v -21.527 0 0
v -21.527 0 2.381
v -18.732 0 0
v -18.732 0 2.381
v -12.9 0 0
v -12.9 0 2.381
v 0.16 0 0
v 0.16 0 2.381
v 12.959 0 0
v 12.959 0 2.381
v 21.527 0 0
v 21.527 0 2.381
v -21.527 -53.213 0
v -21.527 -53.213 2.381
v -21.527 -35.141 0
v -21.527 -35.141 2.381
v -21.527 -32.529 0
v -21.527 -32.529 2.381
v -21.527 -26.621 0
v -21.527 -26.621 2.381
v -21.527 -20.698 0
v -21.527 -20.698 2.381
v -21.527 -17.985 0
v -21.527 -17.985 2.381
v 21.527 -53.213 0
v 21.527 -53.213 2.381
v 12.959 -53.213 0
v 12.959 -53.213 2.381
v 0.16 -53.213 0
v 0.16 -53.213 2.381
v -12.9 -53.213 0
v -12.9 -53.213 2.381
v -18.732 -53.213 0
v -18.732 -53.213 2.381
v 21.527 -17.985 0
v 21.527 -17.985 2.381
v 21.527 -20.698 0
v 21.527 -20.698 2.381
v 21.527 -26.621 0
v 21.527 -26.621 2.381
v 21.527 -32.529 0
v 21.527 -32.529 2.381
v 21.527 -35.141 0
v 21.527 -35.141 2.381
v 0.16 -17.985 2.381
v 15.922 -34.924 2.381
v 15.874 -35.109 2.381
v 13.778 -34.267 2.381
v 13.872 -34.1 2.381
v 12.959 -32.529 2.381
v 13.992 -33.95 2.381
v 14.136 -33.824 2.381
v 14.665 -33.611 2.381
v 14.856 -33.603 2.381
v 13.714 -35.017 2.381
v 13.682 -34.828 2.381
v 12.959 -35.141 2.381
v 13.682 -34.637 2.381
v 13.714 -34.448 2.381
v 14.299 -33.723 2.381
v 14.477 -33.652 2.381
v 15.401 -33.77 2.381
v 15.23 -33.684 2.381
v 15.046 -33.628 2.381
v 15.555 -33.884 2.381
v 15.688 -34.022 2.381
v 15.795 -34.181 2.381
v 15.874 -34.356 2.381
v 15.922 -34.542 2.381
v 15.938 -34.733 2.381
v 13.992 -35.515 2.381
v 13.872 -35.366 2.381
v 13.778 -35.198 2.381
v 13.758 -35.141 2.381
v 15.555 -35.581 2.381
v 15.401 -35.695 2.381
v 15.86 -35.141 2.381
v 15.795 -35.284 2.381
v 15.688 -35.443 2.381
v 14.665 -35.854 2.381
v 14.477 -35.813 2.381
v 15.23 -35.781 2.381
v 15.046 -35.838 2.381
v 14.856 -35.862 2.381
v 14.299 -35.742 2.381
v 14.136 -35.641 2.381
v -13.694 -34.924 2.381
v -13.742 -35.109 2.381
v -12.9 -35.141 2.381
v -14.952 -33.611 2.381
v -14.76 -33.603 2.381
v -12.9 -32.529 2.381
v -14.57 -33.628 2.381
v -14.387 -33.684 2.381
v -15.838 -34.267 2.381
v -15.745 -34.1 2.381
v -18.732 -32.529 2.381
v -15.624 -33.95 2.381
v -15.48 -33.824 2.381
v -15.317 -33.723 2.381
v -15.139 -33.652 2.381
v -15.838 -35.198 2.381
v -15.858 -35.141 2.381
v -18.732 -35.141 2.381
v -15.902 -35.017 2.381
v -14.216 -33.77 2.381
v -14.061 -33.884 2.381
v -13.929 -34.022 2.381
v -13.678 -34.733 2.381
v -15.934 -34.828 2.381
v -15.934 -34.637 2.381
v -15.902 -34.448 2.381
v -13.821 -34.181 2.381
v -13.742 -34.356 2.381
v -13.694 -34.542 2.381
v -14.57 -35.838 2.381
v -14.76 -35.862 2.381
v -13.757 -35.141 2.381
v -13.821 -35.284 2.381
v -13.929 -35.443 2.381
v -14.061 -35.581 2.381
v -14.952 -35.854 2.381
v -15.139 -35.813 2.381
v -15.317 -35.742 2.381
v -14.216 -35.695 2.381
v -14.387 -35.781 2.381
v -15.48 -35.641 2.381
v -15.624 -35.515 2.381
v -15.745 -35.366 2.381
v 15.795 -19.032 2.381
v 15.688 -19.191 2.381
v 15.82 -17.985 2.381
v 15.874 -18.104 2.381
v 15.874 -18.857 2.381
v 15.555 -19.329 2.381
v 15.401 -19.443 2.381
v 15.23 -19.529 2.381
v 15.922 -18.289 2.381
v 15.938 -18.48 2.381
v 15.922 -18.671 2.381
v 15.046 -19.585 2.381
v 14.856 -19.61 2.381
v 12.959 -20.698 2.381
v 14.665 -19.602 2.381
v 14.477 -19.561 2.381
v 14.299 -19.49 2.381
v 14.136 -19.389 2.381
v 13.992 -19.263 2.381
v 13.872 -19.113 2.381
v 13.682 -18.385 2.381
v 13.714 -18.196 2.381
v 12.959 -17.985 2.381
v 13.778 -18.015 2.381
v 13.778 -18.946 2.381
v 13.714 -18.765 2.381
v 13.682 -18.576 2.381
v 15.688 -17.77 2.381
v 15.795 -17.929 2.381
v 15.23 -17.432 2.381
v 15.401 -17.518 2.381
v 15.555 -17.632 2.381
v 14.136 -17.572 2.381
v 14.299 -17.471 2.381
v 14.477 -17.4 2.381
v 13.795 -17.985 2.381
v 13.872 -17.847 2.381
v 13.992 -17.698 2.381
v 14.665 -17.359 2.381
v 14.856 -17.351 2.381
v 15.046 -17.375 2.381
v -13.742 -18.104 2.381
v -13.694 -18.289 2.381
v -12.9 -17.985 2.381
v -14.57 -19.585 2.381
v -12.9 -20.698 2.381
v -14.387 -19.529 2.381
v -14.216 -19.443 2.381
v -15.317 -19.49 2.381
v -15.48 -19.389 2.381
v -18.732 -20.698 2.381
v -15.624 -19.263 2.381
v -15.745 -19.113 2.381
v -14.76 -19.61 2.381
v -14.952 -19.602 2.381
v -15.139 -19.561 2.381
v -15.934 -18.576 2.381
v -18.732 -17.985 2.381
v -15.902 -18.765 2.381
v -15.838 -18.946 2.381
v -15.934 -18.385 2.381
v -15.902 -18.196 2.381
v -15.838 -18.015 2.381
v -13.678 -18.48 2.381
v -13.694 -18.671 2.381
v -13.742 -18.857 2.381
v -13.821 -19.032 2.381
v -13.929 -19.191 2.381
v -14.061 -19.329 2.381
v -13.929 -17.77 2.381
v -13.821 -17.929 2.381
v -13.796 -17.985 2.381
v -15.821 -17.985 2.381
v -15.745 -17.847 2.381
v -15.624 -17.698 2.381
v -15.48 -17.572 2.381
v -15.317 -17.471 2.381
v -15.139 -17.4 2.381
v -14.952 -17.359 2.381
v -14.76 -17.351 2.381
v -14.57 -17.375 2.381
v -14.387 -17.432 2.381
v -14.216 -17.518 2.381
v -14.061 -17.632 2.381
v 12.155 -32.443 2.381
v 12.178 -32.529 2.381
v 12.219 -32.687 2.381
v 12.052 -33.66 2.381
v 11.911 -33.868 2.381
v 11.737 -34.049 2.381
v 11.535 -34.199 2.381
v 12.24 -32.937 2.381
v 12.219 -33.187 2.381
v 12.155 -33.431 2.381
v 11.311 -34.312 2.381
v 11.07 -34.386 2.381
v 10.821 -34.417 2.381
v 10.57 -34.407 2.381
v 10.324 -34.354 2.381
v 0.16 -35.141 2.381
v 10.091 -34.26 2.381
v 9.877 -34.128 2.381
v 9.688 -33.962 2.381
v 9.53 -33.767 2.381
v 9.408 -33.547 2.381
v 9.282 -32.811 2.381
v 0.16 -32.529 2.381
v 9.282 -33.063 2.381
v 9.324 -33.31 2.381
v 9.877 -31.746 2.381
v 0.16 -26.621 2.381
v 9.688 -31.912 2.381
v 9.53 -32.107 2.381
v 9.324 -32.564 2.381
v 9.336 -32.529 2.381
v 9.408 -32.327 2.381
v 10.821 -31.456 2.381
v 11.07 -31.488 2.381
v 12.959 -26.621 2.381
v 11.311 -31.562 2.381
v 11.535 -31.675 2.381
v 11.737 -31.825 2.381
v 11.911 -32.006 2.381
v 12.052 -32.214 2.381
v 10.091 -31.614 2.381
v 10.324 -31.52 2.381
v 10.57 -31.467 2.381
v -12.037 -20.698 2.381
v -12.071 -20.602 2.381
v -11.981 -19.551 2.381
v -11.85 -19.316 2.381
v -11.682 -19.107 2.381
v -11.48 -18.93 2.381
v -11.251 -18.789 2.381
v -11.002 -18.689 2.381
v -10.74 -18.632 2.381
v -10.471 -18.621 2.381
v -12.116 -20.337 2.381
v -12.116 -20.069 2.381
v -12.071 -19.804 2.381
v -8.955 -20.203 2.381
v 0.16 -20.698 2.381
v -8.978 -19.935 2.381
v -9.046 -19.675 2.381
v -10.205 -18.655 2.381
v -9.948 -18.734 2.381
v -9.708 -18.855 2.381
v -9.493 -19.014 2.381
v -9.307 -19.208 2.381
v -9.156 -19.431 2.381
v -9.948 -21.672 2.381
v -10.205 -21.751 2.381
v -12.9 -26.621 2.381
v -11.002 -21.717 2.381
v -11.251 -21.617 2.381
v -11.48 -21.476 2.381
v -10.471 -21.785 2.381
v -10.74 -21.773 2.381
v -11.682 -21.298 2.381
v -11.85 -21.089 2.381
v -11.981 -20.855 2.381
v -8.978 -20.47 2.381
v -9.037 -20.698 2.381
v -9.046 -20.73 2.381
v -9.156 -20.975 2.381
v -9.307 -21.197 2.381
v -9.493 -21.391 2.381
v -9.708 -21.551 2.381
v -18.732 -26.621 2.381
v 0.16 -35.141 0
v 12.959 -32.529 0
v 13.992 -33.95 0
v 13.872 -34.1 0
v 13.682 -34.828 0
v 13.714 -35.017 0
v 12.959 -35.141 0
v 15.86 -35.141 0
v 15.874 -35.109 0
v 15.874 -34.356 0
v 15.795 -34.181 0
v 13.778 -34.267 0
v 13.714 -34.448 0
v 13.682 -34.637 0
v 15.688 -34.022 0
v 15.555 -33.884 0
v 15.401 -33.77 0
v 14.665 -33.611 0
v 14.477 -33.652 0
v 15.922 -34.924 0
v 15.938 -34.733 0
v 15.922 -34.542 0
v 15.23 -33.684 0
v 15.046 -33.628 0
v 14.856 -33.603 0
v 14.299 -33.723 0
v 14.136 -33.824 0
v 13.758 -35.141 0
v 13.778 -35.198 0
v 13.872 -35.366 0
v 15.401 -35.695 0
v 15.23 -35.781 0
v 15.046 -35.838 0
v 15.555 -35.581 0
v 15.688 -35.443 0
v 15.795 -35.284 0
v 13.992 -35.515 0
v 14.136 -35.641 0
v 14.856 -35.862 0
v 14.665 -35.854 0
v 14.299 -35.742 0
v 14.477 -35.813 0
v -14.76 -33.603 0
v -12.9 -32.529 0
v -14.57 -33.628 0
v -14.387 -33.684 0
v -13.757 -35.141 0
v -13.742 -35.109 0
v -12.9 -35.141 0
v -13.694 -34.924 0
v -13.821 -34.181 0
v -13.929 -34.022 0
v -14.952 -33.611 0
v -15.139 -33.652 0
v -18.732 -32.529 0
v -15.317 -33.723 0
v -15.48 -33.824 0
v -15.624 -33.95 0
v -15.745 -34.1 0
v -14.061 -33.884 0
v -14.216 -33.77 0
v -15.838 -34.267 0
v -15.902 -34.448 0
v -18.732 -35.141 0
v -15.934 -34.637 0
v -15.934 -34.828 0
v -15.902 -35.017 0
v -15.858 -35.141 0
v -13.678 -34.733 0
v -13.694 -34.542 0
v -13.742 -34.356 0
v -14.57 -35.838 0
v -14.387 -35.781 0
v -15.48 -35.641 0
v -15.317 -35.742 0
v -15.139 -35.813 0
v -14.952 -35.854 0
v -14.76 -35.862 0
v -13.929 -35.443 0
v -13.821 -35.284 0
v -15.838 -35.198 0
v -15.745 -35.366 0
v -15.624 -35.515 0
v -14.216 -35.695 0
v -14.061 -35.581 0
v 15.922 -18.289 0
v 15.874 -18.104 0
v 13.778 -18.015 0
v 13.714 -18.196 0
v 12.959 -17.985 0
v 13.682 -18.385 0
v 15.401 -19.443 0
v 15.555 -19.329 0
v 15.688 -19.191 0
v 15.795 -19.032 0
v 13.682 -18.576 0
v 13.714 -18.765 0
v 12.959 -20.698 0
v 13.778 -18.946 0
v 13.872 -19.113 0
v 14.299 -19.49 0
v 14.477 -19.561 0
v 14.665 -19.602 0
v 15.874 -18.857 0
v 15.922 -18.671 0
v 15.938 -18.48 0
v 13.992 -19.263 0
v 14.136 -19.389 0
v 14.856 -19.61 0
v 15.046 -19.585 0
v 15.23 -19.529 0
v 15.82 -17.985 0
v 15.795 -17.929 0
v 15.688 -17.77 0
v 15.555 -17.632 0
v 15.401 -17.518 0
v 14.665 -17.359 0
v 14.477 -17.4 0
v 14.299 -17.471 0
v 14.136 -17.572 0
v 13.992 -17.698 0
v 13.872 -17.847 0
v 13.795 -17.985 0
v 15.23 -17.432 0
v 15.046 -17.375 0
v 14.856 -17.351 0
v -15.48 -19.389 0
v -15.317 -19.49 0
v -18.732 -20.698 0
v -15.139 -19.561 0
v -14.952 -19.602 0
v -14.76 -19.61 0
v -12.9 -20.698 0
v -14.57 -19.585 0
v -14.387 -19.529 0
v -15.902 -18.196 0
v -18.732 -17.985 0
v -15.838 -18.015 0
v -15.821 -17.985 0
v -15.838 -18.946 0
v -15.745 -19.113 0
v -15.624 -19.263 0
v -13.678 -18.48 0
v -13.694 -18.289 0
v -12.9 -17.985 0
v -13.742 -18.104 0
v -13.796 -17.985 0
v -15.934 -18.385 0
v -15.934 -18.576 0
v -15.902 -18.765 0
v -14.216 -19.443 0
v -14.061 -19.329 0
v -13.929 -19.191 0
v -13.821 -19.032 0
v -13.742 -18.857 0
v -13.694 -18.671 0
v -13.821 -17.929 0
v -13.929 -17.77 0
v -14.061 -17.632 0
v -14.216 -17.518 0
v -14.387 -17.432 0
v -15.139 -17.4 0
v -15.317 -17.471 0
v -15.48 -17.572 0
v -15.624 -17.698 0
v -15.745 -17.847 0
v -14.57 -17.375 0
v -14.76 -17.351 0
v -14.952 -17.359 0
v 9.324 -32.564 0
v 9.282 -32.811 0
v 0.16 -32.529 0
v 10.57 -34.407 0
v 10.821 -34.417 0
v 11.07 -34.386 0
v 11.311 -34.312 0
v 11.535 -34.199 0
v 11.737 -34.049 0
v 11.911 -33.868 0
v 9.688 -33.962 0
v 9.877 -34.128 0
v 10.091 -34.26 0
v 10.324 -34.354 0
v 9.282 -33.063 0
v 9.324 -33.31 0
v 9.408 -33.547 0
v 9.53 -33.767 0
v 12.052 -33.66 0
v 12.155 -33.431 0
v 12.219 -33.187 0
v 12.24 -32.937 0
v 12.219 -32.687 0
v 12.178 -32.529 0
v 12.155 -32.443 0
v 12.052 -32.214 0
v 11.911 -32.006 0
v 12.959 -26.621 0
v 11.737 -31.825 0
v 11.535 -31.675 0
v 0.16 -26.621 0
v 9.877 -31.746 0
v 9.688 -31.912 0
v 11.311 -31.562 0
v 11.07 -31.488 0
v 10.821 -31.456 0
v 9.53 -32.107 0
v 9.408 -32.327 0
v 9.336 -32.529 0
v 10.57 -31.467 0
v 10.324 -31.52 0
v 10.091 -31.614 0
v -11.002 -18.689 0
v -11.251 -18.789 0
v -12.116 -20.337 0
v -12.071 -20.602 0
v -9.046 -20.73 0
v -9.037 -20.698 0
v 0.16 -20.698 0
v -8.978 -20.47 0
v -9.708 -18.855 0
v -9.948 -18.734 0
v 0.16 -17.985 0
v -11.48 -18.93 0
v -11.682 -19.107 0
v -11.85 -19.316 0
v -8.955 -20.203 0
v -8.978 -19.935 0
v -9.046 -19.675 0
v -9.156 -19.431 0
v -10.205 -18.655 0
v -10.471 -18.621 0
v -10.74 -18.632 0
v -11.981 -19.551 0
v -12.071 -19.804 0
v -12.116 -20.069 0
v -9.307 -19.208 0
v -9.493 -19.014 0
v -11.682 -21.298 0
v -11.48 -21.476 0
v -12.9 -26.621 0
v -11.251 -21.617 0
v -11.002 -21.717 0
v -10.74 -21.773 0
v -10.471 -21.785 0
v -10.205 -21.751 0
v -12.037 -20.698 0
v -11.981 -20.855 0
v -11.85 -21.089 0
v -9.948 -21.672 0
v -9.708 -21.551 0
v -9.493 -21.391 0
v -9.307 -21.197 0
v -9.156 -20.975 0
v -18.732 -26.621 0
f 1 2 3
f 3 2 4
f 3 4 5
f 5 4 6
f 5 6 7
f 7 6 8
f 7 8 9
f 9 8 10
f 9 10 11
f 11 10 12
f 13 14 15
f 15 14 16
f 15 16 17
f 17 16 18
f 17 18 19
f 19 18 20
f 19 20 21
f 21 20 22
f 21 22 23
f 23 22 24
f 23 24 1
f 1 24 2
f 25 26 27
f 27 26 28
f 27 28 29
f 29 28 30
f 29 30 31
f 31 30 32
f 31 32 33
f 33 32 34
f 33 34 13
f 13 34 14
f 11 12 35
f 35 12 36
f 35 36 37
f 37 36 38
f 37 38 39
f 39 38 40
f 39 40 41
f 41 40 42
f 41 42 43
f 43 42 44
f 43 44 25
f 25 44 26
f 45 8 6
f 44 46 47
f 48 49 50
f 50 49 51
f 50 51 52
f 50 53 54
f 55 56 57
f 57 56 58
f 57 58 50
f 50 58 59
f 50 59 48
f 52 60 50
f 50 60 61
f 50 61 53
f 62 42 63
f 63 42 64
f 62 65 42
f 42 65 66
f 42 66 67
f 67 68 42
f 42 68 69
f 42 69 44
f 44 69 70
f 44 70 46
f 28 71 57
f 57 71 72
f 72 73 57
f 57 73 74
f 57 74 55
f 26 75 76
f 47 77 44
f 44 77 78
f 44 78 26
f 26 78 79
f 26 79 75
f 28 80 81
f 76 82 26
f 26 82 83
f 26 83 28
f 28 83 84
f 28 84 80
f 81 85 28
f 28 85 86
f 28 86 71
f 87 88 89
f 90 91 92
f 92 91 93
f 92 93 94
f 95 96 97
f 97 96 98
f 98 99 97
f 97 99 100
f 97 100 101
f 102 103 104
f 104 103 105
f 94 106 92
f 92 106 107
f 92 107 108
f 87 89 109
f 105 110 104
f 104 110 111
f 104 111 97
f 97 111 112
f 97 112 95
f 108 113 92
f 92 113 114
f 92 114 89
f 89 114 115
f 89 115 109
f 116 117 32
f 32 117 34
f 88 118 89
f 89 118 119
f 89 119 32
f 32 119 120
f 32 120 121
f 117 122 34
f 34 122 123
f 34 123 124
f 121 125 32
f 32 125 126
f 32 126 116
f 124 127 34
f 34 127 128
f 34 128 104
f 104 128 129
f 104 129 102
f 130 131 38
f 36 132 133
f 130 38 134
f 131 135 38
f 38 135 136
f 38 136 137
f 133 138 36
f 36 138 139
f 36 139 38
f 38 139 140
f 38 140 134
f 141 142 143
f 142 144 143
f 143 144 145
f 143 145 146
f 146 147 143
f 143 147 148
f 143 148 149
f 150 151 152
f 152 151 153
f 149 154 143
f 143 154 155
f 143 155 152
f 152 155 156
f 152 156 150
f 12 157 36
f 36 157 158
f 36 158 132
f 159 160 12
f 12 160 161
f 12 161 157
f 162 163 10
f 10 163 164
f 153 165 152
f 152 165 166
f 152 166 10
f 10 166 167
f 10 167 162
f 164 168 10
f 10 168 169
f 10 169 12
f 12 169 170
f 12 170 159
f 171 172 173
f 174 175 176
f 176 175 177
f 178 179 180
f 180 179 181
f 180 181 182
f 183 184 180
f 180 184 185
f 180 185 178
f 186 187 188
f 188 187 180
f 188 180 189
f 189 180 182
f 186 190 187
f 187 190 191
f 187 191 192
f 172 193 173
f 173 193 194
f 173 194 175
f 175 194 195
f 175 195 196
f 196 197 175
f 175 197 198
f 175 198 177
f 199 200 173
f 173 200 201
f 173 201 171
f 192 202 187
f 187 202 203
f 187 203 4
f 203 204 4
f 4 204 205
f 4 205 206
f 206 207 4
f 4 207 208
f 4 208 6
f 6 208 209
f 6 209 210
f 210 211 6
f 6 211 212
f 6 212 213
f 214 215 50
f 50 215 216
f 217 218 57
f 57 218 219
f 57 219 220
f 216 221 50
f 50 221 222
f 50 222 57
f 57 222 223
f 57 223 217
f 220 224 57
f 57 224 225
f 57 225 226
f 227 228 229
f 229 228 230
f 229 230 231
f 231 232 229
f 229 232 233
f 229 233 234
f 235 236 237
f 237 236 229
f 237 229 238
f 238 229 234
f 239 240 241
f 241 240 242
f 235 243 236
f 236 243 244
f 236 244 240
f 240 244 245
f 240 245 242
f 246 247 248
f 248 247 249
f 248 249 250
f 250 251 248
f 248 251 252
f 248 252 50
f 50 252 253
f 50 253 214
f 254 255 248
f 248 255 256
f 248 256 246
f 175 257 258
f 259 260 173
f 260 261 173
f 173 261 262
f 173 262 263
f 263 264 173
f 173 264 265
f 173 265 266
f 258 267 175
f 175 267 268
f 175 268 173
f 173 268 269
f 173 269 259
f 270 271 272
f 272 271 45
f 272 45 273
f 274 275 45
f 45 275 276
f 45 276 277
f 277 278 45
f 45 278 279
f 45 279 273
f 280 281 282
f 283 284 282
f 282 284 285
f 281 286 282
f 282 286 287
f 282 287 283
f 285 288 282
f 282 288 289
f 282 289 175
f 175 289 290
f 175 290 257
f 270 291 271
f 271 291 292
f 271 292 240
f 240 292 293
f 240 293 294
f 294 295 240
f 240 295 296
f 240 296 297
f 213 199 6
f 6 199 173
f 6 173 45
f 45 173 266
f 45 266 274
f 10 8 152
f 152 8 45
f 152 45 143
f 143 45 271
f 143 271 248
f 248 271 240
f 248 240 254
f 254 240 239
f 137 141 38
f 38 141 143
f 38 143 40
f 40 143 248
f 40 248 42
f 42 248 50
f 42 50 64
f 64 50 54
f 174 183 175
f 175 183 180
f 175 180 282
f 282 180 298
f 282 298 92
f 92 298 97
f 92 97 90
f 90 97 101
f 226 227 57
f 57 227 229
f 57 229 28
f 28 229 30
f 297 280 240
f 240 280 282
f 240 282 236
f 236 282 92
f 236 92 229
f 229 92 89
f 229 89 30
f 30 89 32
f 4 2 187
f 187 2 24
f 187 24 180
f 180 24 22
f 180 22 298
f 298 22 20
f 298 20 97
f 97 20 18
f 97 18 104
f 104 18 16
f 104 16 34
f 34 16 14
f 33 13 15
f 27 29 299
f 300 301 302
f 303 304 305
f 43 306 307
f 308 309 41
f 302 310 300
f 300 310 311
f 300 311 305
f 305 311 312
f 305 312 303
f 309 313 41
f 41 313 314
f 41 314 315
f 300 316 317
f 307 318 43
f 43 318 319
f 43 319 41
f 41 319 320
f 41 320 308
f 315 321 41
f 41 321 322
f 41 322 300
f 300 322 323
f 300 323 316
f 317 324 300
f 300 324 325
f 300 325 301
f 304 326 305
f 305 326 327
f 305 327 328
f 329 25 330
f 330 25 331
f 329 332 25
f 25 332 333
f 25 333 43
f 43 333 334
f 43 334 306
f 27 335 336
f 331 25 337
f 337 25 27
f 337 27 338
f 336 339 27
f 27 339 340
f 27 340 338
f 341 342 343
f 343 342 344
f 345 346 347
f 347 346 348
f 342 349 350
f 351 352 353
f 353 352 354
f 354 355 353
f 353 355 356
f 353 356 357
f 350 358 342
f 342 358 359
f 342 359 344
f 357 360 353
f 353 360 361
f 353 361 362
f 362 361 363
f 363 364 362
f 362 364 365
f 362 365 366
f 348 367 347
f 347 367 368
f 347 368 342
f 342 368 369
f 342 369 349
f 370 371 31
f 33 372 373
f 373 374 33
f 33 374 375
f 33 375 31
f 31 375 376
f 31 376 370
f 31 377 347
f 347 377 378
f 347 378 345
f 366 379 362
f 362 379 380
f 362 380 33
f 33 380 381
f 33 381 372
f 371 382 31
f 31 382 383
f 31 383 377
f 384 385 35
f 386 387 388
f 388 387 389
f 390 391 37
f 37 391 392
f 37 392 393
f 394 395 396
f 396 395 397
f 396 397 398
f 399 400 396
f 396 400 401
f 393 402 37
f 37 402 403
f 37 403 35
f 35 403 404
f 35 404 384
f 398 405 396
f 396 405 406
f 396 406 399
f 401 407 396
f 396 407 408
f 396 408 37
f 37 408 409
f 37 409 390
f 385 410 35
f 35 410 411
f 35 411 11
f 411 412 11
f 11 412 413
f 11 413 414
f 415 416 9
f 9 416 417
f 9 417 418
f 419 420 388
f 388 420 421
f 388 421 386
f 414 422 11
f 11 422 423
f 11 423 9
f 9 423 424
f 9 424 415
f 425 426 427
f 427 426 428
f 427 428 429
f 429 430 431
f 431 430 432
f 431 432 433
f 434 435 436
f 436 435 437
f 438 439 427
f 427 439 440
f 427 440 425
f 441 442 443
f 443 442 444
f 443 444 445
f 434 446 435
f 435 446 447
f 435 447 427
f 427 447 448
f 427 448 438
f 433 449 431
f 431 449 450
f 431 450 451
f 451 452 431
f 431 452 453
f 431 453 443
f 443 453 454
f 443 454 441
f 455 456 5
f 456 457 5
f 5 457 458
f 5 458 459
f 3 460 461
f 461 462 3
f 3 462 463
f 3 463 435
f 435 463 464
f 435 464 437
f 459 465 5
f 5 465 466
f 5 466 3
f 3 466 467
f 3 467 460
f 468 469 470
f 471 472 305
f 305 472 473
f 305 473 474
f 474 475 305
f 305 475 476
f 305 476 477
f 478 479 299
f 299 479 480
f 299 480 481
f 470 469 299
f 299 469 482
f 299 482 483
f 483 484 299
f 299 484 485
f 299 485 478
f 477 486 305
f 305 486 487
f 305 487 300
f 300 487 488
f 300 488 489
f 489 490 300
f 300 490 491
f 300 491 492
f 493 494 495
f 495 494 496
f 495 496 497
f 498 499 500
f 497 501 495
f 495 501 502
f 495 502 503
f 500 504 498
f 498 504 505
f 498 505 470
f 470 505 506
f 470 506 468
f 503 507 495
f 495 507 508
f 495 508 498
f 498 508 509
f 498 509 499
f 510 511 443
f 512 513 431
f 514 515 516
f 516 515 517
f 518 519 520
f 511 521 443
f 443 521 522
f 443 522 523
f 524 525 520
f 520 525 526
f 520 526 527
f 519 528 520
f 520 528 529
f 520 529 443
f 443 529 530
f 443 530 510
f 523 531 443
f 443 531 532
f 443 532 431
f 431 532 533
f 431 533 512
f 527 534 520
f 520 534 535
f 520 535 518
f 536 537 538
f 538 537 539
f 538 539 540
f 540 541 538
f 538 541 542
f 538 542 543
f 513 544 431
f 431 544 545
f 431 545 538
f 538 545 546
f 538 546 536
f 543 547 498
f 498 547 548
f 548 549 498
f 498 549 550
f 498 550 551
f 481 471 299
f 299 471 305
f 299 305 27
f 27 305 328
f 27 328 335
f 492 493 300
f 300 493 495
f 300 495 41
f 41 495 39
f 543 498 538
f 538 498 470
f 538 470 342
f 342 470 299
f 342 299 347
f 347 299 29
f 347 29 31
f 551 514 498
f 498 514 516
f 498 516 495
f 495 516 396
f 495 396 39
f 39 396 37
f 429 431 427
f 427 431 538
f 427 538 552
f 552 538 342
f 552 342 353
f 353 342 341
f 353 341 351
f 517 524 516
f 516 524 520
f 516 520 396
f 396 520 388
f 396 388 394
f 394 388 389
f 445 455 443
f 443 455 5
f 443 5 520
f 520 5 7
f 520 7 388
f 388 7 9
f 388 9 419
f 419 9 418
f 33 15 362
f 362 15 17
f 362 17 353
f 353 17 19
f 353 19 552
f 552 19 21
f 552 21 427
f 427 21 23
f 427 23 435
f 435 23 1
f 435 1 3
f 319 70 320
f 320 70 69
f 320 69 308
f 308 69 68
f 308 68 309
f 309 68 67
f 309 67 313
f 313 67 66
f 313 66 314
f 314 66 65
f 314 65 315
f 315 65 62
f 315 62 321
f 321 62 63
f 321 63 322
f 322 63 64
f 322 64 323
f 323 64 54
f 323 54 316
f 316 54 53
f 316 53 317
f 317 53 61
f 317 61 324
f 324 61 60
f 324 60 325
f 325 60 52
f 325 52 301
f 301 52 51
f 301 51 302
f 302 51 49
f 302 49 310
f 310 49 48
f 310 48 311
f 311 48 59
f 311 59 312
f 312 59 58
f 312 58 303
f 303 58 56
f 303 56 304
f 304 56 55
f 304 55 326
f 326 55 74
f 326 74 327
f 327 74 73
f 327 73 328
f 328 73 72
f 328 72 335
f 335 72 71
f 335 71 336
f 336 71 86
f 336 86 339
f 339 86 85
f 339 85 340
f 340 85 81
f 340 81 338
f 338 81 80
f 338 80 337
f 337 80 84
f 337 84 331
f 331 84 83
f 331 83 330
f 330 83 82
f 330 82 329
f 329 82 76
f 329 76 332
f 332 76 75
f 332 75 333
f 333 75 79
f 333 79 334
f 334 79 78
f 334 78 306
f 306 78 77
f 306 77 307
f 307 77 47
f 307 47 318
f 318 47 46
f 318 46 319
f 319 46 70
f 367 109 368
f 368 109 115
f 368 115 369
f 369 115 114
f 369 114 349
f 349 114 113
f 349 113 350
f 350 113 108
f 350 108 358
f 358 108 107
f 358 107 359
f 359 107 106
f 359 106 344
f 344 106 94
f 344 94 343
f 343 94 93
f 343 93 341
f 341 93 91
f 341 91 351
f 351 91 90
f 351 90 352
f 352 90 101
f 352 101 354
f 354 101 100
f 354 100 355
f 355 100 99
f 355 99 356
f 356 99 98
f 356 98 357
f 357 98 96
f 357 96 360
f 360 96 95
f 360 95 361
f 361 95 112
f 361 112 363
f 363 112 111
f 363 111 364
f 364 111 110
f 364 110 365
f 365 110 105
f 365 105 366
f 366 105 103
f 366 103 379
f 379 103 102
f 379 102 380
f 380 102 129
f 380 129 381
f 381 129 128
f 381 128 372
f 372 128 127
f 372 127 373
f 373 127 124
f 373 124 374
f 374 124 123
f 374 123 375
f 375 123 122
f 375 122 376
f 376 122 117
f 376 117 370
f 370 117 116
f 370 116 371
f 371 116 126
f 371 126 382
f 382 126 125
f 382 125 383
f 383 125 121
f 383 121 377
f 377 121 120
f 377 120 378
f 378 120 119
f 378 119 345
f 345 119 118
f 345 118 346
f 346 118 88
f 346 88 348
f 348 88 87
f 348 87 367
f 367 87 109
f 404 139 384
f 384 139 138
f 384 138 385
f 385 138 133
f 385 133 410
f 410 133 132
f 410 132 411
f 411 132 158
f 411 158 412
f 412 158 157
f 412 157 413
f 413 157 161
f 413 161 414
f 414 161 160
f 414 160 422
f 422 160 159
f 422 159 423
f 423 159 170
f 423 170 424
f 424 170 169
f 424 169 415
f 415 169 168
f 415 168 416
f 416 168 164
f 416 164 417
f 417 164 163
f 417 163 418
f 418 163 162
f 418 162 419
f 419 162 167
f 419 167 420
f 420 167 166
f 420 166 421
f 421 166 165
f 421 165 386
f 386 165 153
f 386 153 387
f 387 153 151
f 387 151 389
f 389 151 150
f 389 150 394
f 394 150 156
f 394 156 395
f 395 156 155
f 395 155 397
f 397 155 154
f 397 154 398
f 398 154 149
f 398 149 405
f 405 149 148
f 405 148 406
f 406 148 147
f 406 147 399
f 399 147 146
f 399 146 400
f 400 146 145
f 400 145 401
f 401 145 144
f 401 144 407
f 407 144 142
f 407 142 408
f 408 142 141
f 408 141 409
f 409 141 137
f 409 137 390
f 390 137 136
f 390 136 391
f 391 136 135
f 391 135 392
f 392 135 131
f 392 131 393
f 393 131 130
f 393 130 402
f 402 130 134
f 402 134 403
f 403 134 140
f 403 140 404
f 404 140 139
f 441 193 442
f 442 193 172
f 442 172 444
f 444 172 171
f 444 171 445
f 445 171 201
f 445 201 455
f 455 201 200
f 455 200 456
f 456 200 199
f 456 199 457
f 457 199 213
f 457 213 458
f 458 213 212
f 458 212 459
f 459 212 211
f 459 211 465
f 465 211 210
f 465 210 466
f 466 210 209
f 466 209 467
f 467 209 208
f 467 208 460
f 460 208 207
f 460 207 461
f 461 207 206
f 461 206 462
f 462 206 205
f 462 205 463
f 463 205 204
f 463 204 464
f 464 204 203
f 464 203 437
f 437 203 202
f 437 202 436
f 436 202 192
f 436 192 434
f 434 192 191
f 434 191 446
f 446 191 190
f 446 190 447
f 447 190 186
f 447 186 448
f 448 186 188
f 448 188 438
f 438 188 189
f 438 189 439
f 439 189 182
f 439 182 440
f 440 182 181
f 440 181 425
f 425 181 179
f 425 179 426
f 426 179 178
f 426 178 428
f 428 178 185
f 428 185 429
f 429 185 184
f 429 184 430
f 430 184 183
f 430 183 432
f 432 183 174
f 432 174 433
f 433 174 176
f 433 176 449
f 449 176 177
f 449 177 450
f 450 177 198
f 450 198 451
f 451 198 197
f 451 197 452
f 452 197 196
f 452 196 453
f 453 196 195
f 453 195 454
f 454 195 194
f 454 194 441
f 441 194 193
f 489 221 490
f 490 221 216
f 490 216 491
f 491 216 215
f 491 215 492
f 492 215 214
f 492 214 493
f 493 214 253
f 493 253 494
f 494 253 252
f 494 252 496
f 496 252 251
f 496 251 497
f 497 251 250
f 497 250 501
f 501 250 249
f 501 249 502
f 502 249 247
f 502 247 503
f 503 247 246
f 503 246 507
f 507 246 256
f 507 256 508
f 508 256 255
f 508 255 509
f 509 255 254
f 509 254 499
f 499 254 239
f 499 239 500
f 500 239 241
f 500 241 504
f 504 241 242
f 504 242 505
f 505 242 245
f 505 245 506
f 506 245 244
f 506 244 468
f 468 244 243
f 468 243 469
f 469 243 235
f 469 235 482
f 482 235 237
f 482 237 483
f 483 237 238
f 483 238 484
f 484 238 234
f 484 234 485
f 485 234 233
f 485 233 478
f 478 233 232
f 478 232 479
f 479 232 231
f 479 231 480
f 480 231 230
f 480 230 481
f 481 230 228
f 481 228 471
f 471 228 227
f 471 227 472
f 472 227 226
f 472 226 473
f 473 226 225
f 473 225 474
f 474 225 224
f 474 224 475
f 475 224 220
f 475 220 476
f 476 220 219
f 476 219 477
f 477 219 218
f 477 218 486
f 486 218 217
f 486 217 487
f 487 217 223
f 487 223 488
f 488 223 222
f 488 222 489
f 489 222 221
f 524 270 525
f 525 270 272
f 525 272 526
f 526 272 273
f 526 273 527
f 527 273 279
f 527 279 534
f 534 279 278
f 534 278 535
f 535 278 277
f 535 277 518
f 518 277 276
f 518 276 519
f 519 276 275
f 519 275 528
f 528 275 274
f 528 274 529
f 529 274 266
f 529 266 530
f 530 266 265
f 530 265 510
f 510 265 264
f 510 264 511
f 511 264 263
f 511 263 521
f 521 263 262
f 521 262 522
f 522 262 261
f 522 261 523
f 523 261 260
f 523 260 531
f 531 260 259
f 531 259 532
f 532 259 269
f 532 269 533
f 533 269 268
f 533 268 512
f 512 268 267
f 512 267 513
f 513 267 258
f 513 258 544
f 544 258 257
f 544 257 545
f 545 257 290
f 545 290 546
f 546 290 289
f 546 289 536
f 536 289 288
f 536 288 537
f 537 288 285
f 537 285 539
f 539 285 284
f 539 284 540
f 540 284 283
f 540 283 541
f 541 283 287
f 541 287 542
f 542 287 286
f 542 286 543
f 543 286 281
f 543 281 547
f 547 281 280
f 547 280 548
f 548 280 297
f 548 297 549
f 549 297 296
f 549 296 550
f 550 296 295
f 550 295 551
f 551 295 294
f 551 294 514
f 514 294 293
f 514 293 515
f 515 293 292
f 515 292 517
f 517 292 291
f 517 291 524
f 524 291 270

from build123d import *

# Parameters (mm, degrees)
SKETCH1_W             = 43.053
SKETCH1_H             = 53.213
BOSS_EXTRUDE1_DEPTH   = 2.38125
F_4_40_TAPPED_HOLE1_D = 2.2606
SKETCH5_R             = 1.583220457
SKETCH5_R_2           = 1.481870985
CUT_EXTRUDE1_DEPTH    = 3.38125


with BuildPart() as part:
    # Sketch1 → Boss-Extrude1 (new body)
    with BuildSketch(Plane.XY):
        with Locations((0, -26.6065)):
            Rectangle(SKETCH1_W, SKETCH1_H)
    extrude(amount=BOSS_EXTRUDE1_DEPTH)

    # #4-40 Tapped Hole1 (through all)
    with Locations(Plane.XY.offset(2.38125)):
        with Locations((-14.8082, -18.4804304), (14.8082, -18.4804304), (-14.8082, -34.7325696), (14.8082, -34.7325696)):
            Hole(F_4_40_TAPPED_HOLE1_D / 2)

    # Sketch5 → Cut-Extrude1 (cut, through all)
    with BuildSketch(Plane.XY.offset(2.38125)):
        with Locations((-10.538552378, -20.202865742)):
            Circle(SKETCH5_R)
        with Locations((10.758105553, -32.936949866)):
            Circle(SKETCH5_R_2)
    extrude(amount=-CUT_EXTRUDE1_DEPTH, mode=Mode.SUBTRACT)


solid = part.part
